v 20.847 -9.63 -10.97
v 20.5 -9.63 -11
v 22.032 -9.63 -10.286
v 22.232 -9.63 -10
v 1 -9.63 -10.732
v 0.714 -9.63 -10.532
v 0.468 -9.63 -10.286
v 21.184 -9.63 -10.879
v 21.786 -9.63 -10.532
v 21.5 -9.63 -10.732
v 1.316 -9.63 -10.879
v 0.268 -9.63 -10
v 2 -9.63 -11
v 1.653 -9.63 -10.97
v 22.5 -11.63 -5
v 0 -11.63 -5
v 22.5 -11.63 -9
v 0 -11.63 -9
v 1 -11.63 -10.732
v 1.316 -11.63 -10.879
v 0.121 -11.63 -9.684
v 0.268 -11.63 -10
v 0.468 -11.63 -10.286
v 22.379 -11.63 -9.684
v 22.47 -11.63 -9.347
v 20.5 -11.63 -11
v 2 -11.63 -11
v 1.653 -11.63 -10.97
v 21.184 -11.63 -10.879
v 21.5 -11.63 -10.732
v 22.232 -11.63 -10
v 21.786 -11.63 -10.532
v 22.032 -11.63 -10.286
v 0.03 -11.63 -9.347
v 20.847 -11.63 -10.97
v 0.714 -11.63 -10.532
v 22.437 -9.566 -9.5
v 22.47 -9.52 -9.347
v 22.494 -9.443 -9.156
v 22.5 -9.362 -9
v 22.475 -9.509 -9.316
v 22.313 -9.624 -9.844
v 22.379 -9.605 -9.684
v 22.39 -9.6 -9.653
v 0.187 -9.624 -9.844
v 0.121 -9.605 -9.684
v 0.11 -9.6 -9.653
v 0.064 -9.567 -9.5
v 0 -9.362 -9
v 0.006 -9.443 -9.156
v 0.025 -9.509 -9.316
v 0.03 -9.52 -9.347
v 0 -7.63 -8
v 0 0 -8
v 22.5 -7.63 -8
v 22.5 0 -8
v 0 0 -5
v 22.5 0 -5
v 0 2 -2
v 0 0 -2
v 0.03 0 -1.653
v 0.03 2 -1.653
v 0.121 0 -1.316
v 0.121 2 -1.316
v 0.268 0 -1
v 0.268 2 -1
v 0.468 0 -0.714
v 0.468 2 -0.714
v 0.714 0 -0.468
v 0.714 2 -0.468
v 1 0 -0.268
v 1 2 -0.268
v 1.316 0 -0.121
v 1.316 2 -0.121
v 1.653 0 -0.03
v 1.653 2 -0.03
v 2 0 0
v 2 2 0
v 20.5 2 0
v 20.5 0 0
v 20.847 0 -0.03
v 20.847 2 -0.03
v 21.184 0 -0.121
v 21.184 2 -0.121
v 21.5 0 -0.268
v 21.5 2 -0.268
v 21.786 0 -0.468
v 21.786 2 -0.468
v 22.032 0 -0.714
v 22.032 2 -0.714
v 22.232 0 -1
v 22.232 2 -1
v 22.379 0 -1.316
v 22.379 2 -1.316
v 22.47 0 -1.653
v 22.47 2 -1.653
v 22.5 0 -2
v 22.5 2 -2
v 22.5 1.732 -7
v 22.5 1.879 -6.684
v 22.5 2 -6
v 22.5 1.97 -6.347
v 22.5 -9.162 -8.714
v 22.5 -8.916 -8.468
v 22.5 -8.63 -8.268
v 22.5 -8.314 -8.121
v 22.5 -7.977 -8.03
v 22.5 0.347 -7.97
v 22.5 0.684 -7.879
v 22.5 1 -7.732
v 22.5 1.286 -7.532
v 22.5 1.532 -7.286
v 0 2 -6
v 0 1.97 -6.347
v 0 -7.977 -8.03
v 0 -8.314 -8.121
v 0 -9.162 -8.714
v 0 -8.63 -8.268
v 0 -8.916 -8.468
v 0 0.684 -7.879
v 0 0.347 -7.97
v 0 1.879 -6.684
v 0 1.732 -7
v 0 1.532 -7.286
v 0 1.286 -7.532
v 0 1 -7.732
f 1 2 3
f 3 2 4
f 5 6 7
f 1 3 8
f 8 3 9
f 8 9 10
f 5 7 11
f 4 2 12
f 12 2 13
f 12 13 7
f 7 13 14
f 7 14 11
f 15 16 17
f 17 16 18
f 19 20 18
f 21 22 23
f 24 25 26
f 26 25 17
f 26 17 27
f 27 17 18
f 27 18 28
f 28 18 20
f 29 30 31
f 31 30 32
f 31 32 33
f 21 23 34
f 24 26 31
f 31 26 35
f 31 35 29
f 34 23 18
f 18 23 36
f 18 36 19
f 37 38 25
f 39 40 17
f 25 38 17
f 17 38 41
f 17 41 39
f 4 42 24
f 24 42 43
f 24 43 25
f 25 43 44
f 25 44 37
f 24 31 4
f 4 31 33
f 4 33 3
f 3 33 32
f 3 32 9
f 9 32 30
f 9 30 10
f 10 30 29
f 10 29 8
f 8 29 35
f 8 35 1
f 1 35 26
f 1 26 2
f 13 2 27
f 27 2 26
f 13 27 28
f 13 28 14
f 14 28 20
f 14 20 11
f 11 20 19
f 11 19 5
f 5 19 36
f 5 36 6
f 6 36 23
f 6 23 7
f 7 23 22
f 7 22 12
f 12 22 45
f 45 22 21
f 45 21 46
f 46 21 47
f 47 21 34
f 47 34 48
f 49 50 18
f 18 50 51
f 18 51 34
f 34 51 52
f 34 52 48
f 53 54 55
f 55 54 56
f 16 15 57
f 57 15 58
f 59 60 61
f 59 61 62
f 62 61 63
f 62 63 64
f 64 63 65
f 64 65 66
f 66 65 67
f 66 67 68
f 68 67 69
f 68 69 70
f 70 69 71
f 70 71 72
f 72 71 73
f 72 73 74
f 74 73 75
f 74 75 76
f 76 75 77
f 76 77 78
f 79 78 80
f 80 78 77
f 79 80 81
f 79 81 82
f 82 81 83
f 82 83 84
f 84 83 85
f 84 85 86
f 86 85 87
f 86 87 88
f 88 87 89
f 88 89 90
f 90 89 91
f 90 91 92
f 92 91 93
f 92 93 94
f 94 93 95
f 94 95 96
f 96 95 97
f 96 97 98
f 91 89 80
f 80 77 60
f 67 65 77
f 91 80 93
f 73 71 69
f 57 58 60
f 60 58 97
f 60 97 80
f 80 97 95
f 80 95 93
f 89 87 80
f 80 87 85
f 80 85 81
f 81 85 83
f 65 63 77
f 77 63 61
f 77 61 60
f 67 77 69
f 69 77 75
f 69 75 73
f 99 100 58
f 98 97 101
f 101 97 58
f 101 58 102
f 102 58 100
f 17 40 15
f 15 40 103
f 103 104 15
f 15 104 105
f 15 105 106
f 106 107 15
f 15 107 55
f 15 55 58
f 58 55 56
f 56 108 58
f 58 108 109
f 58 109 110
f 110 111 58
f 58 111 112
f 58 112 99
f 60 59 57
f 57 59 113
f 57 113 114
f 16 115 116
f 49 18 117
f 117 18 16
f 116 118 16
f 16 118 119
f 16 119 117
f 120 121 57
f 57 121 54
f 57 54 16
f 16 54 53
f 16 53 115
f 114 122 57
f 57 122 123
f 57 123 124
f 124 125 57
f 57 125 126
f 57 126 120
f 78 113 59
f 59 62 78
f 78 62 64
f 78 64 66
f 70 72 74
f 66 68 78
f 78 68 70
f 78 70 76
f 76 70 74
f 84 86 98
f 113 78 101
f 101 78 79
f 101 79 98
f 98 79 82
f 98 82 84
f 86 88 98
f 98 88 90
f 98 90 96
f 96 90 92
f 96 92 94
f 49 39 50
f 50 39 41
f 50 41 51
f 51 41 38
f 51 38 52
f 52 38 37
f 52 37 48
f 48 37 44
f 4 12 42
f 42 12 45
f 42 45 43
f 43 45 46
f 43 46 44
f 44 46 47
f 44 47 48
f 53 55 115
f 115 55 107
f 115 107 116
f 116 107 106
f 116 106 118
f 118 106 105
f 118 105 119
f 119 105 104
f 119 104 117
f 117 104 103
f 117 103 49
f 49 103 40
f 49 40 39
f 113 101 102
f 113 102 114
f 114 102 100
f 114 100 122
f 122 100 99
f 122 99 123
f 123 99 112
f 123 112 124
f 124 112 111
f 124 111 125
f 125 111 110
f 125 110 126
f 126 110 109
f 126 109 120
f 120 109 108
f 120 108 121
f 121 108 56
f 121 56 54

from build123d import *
from build123d.topology import SkipClean

# Parameters (mm, degrees)
BOSS_EXTRUDE1_DEPTH             = 2
BOSS_EXTRUDE2_START             = -13.63
BOSS_EXTRUDE2_DEPTH             = 13.63
BOSS_EXTRUDE3_DEPTH             = 2
SKETCH5_W                       = 22.5
SKETCH5_H                       = 6.1
CUT_EXTRUDE1_DEPTH              = 28.613527482
BOSS_EXTRUDE4_REACH             = 29.614
SKETCH6_W                       = 22.5
SKETCH6_H                       = 3
BOSS_EXTRUDE4_DIRECTION_2_REACH = 29.614
FILLET1_R                       = 2


with BuildPart() as part:
    # Sketch1 → Boss-Extrude1 (new body)
    with BuildSketch(Plane(origin=(0, 0, 0), x_dir=(1, 0, 0), z_dir=(0, 1, 0))):
        with BuildLine():
            Line((2, 0), (20.5, 0))
            ThreePointArc((20.5, 0), (21.914213562, 0.585786438), (22.5, 2))
            Line((22.5, 2), (22.5, 5))
            ThreePointArc((22.5, 5), (21.914213562, 6.414213562), (20.5, 7))
            Line((20.5, 7), (2, 7))
            ThreePointArc((2, 7), (0.585786438, 6.414213562), (0, 5))
            Line((0, 5), (0, 2))
            ThreePointArc((0, 2), (0.585786438, 0.585786438), (2, 0))
        make_face()
    extrude(amount=BOSS_EXTRUDE1_DEPTH)

    # Sketch2 → Boss-Extrude2 (add)
    with SkipClean():  # the faces are left unmerged after this step: merging them gives an invalid solid
        with BuildSketch(Plane(origin=(0, 2, 0), x_dir=(1, 0, 0), z_dir=(0, 1, 0)).offset(BOSS_EXTRUDE2_START)):
            with BuildLine():
                Line((22.5, 5), (22.5, 2))
                ThreePointArc((22.5, 2), (22.202938637, 0.951191152), (21.4, 0.21394289))
                Line((21.4, 0.21394289), (21.4, 3.1))
                ThreePointArc((21.4, 3.1), (20.521320344, 5.221320344), (18.4, 6.1))
                Line((18.4, 6.1), (4.1, 6.1))
                ThreePointArc((4.1, 6.1), (1.978679656, 5.221320344), (1.1, 3.1))
                Line((1.1, 3.1), (1.1, 0.21394289))
                ThreePointArc((1.1, 0.21394289), (0.297061363, 0.951191152), (0, 2))
                Line((0, 2), (0, 5))
                ThreePointArc((0, 5), (0.585786438, 6.414213562), (2, 7))
                Line((2, 7), (20.5, 7))
                ThreePointArc((20.5, 7), (21.914213562, 6.414213562), (22.5, 5))
            make_face()
        extrude(amount=BOSS_EXTRUDE2_DEPTH)
    add(part.part.scale(1), mode=Mode.REPLACE)  # the faces are merged on a copy

    # Sketch4 → Boss-Extrude3 (add)
    with BuildSketch(Plane.XZ.offset(11.63)):
        with BuildLine():
            Line((20.5, -7), (2, -7))
            ThreePointArc((2, -7), (0.585786438, -6.414213562), (0, -5))
            Line((0, -5), (0, -9))
            ThreePointArc((0, -9), (0.585786438, -10.414213562), (2, -11))
            Line((2, -11), (20.5, -11))
            ThreePointArc((20.5, -11), (21.914213562, -10.414213562), (22.5, -9))
            Line((22.5, -9), (22.5, -5))
            ThreePointArc((22.5, -5), (21.914213562, -6.414213562), (20.5, -7))
        make_face()
    extrude(amount=-BOSS_EXTRUDE3_DEPTH)

    # Sketch5 → Cut-Extrude1 (cut, through all)
    with BuildSketch(Plane.XZ):
        with Locations((11.25, -3.05)):
            Rectangle(SKETCH5_W, SKETCH5_H)
    extrude(amount=CUT_EXTRUDE1_DEPTH, mode=Mode.SUBTRACT)

    # Boss-Extrude4: up to this face of the body (flat: up to its plane)
    boss_extrude4_end = Plane(part.part.faces().sort_by_distance((11.25, 2, -3.5))[0])
    # Sketch6 → Boss-Extrude4 (add, up to the picked face)
    with BuildSketch(Plane(origin=(0, -9.63, 0), x_dir=(1, 0, 0), z_dir=(0, 1, 0)), mode=Mode.PRIVATE) as boss_extrude4_sk1:
        with Locations((11.25, 6.5)):
            Rectangle(SKETCH6_W, SKETCH6_H)
    boss_extrude4_tool1 = split(extrude(boss_extrude4_sk1.sketch, amount=BOSS_EXTRUDE4_REACH, mode=Mode.PRIVATE), bisect_by=boss_extrude4_end, keep=Keep.BOTH, mode=Mode.PRIVATE)
    add(boss_extrude4_tool1.solids().sort_by(Axis((11.25, -9.63, -6.5), (0, 1, 0)))[0])

    # Boss-Extrude4 direction 2: up to this face of the body (flat: up to its plane)
    boss_extrude4_direction_2_end = Plane(part.part.faces().sort_by_distance((11.25, -11.63, -8.518311689))[0])
    # Sketch6 → Boss-Extrude4 direction 2 (add, up to the picked face)
    with BuildSketch(Plane(origin=(0, -9.63, 0), x_dir=(1, 0, 0), z_dir=(0, 1, 0)), mode=Mode.PRIVATE) as boss_extrude4_direction_2_sk1:
        with Locations((11.25, 6.5)):
            Rectangle(SKETCH6_W, SKETCH6_H)
    boss_extrude4_direction_2_tool1 = split(extrude(boss_extrude4_direction_2_sk1.sketch, amount=-BOSS_EXTRUDE4_DIRECTION_2_REACH, mode=Mode.PRIVATE), bisect_by=boss_extrude4_direction_2_end, keep=Keep.BOTH, mode=Mode.PRIVATE)
    add(boss_extrude4_direction_2_tool1.solids().sort_by(Axis((11.25, -9.63, -6.5), (0, -1, 0)))[0])

    # Fillet1
    fillet1_edges = [part.edges().sort_by_distance(p)[0] for p in [
        (11.25, -9.63, -8),
        (11.25, 2, -8),
    ]]
    fillet(fillet1_edges, radius=FILLET1_R)


solid = part.part
